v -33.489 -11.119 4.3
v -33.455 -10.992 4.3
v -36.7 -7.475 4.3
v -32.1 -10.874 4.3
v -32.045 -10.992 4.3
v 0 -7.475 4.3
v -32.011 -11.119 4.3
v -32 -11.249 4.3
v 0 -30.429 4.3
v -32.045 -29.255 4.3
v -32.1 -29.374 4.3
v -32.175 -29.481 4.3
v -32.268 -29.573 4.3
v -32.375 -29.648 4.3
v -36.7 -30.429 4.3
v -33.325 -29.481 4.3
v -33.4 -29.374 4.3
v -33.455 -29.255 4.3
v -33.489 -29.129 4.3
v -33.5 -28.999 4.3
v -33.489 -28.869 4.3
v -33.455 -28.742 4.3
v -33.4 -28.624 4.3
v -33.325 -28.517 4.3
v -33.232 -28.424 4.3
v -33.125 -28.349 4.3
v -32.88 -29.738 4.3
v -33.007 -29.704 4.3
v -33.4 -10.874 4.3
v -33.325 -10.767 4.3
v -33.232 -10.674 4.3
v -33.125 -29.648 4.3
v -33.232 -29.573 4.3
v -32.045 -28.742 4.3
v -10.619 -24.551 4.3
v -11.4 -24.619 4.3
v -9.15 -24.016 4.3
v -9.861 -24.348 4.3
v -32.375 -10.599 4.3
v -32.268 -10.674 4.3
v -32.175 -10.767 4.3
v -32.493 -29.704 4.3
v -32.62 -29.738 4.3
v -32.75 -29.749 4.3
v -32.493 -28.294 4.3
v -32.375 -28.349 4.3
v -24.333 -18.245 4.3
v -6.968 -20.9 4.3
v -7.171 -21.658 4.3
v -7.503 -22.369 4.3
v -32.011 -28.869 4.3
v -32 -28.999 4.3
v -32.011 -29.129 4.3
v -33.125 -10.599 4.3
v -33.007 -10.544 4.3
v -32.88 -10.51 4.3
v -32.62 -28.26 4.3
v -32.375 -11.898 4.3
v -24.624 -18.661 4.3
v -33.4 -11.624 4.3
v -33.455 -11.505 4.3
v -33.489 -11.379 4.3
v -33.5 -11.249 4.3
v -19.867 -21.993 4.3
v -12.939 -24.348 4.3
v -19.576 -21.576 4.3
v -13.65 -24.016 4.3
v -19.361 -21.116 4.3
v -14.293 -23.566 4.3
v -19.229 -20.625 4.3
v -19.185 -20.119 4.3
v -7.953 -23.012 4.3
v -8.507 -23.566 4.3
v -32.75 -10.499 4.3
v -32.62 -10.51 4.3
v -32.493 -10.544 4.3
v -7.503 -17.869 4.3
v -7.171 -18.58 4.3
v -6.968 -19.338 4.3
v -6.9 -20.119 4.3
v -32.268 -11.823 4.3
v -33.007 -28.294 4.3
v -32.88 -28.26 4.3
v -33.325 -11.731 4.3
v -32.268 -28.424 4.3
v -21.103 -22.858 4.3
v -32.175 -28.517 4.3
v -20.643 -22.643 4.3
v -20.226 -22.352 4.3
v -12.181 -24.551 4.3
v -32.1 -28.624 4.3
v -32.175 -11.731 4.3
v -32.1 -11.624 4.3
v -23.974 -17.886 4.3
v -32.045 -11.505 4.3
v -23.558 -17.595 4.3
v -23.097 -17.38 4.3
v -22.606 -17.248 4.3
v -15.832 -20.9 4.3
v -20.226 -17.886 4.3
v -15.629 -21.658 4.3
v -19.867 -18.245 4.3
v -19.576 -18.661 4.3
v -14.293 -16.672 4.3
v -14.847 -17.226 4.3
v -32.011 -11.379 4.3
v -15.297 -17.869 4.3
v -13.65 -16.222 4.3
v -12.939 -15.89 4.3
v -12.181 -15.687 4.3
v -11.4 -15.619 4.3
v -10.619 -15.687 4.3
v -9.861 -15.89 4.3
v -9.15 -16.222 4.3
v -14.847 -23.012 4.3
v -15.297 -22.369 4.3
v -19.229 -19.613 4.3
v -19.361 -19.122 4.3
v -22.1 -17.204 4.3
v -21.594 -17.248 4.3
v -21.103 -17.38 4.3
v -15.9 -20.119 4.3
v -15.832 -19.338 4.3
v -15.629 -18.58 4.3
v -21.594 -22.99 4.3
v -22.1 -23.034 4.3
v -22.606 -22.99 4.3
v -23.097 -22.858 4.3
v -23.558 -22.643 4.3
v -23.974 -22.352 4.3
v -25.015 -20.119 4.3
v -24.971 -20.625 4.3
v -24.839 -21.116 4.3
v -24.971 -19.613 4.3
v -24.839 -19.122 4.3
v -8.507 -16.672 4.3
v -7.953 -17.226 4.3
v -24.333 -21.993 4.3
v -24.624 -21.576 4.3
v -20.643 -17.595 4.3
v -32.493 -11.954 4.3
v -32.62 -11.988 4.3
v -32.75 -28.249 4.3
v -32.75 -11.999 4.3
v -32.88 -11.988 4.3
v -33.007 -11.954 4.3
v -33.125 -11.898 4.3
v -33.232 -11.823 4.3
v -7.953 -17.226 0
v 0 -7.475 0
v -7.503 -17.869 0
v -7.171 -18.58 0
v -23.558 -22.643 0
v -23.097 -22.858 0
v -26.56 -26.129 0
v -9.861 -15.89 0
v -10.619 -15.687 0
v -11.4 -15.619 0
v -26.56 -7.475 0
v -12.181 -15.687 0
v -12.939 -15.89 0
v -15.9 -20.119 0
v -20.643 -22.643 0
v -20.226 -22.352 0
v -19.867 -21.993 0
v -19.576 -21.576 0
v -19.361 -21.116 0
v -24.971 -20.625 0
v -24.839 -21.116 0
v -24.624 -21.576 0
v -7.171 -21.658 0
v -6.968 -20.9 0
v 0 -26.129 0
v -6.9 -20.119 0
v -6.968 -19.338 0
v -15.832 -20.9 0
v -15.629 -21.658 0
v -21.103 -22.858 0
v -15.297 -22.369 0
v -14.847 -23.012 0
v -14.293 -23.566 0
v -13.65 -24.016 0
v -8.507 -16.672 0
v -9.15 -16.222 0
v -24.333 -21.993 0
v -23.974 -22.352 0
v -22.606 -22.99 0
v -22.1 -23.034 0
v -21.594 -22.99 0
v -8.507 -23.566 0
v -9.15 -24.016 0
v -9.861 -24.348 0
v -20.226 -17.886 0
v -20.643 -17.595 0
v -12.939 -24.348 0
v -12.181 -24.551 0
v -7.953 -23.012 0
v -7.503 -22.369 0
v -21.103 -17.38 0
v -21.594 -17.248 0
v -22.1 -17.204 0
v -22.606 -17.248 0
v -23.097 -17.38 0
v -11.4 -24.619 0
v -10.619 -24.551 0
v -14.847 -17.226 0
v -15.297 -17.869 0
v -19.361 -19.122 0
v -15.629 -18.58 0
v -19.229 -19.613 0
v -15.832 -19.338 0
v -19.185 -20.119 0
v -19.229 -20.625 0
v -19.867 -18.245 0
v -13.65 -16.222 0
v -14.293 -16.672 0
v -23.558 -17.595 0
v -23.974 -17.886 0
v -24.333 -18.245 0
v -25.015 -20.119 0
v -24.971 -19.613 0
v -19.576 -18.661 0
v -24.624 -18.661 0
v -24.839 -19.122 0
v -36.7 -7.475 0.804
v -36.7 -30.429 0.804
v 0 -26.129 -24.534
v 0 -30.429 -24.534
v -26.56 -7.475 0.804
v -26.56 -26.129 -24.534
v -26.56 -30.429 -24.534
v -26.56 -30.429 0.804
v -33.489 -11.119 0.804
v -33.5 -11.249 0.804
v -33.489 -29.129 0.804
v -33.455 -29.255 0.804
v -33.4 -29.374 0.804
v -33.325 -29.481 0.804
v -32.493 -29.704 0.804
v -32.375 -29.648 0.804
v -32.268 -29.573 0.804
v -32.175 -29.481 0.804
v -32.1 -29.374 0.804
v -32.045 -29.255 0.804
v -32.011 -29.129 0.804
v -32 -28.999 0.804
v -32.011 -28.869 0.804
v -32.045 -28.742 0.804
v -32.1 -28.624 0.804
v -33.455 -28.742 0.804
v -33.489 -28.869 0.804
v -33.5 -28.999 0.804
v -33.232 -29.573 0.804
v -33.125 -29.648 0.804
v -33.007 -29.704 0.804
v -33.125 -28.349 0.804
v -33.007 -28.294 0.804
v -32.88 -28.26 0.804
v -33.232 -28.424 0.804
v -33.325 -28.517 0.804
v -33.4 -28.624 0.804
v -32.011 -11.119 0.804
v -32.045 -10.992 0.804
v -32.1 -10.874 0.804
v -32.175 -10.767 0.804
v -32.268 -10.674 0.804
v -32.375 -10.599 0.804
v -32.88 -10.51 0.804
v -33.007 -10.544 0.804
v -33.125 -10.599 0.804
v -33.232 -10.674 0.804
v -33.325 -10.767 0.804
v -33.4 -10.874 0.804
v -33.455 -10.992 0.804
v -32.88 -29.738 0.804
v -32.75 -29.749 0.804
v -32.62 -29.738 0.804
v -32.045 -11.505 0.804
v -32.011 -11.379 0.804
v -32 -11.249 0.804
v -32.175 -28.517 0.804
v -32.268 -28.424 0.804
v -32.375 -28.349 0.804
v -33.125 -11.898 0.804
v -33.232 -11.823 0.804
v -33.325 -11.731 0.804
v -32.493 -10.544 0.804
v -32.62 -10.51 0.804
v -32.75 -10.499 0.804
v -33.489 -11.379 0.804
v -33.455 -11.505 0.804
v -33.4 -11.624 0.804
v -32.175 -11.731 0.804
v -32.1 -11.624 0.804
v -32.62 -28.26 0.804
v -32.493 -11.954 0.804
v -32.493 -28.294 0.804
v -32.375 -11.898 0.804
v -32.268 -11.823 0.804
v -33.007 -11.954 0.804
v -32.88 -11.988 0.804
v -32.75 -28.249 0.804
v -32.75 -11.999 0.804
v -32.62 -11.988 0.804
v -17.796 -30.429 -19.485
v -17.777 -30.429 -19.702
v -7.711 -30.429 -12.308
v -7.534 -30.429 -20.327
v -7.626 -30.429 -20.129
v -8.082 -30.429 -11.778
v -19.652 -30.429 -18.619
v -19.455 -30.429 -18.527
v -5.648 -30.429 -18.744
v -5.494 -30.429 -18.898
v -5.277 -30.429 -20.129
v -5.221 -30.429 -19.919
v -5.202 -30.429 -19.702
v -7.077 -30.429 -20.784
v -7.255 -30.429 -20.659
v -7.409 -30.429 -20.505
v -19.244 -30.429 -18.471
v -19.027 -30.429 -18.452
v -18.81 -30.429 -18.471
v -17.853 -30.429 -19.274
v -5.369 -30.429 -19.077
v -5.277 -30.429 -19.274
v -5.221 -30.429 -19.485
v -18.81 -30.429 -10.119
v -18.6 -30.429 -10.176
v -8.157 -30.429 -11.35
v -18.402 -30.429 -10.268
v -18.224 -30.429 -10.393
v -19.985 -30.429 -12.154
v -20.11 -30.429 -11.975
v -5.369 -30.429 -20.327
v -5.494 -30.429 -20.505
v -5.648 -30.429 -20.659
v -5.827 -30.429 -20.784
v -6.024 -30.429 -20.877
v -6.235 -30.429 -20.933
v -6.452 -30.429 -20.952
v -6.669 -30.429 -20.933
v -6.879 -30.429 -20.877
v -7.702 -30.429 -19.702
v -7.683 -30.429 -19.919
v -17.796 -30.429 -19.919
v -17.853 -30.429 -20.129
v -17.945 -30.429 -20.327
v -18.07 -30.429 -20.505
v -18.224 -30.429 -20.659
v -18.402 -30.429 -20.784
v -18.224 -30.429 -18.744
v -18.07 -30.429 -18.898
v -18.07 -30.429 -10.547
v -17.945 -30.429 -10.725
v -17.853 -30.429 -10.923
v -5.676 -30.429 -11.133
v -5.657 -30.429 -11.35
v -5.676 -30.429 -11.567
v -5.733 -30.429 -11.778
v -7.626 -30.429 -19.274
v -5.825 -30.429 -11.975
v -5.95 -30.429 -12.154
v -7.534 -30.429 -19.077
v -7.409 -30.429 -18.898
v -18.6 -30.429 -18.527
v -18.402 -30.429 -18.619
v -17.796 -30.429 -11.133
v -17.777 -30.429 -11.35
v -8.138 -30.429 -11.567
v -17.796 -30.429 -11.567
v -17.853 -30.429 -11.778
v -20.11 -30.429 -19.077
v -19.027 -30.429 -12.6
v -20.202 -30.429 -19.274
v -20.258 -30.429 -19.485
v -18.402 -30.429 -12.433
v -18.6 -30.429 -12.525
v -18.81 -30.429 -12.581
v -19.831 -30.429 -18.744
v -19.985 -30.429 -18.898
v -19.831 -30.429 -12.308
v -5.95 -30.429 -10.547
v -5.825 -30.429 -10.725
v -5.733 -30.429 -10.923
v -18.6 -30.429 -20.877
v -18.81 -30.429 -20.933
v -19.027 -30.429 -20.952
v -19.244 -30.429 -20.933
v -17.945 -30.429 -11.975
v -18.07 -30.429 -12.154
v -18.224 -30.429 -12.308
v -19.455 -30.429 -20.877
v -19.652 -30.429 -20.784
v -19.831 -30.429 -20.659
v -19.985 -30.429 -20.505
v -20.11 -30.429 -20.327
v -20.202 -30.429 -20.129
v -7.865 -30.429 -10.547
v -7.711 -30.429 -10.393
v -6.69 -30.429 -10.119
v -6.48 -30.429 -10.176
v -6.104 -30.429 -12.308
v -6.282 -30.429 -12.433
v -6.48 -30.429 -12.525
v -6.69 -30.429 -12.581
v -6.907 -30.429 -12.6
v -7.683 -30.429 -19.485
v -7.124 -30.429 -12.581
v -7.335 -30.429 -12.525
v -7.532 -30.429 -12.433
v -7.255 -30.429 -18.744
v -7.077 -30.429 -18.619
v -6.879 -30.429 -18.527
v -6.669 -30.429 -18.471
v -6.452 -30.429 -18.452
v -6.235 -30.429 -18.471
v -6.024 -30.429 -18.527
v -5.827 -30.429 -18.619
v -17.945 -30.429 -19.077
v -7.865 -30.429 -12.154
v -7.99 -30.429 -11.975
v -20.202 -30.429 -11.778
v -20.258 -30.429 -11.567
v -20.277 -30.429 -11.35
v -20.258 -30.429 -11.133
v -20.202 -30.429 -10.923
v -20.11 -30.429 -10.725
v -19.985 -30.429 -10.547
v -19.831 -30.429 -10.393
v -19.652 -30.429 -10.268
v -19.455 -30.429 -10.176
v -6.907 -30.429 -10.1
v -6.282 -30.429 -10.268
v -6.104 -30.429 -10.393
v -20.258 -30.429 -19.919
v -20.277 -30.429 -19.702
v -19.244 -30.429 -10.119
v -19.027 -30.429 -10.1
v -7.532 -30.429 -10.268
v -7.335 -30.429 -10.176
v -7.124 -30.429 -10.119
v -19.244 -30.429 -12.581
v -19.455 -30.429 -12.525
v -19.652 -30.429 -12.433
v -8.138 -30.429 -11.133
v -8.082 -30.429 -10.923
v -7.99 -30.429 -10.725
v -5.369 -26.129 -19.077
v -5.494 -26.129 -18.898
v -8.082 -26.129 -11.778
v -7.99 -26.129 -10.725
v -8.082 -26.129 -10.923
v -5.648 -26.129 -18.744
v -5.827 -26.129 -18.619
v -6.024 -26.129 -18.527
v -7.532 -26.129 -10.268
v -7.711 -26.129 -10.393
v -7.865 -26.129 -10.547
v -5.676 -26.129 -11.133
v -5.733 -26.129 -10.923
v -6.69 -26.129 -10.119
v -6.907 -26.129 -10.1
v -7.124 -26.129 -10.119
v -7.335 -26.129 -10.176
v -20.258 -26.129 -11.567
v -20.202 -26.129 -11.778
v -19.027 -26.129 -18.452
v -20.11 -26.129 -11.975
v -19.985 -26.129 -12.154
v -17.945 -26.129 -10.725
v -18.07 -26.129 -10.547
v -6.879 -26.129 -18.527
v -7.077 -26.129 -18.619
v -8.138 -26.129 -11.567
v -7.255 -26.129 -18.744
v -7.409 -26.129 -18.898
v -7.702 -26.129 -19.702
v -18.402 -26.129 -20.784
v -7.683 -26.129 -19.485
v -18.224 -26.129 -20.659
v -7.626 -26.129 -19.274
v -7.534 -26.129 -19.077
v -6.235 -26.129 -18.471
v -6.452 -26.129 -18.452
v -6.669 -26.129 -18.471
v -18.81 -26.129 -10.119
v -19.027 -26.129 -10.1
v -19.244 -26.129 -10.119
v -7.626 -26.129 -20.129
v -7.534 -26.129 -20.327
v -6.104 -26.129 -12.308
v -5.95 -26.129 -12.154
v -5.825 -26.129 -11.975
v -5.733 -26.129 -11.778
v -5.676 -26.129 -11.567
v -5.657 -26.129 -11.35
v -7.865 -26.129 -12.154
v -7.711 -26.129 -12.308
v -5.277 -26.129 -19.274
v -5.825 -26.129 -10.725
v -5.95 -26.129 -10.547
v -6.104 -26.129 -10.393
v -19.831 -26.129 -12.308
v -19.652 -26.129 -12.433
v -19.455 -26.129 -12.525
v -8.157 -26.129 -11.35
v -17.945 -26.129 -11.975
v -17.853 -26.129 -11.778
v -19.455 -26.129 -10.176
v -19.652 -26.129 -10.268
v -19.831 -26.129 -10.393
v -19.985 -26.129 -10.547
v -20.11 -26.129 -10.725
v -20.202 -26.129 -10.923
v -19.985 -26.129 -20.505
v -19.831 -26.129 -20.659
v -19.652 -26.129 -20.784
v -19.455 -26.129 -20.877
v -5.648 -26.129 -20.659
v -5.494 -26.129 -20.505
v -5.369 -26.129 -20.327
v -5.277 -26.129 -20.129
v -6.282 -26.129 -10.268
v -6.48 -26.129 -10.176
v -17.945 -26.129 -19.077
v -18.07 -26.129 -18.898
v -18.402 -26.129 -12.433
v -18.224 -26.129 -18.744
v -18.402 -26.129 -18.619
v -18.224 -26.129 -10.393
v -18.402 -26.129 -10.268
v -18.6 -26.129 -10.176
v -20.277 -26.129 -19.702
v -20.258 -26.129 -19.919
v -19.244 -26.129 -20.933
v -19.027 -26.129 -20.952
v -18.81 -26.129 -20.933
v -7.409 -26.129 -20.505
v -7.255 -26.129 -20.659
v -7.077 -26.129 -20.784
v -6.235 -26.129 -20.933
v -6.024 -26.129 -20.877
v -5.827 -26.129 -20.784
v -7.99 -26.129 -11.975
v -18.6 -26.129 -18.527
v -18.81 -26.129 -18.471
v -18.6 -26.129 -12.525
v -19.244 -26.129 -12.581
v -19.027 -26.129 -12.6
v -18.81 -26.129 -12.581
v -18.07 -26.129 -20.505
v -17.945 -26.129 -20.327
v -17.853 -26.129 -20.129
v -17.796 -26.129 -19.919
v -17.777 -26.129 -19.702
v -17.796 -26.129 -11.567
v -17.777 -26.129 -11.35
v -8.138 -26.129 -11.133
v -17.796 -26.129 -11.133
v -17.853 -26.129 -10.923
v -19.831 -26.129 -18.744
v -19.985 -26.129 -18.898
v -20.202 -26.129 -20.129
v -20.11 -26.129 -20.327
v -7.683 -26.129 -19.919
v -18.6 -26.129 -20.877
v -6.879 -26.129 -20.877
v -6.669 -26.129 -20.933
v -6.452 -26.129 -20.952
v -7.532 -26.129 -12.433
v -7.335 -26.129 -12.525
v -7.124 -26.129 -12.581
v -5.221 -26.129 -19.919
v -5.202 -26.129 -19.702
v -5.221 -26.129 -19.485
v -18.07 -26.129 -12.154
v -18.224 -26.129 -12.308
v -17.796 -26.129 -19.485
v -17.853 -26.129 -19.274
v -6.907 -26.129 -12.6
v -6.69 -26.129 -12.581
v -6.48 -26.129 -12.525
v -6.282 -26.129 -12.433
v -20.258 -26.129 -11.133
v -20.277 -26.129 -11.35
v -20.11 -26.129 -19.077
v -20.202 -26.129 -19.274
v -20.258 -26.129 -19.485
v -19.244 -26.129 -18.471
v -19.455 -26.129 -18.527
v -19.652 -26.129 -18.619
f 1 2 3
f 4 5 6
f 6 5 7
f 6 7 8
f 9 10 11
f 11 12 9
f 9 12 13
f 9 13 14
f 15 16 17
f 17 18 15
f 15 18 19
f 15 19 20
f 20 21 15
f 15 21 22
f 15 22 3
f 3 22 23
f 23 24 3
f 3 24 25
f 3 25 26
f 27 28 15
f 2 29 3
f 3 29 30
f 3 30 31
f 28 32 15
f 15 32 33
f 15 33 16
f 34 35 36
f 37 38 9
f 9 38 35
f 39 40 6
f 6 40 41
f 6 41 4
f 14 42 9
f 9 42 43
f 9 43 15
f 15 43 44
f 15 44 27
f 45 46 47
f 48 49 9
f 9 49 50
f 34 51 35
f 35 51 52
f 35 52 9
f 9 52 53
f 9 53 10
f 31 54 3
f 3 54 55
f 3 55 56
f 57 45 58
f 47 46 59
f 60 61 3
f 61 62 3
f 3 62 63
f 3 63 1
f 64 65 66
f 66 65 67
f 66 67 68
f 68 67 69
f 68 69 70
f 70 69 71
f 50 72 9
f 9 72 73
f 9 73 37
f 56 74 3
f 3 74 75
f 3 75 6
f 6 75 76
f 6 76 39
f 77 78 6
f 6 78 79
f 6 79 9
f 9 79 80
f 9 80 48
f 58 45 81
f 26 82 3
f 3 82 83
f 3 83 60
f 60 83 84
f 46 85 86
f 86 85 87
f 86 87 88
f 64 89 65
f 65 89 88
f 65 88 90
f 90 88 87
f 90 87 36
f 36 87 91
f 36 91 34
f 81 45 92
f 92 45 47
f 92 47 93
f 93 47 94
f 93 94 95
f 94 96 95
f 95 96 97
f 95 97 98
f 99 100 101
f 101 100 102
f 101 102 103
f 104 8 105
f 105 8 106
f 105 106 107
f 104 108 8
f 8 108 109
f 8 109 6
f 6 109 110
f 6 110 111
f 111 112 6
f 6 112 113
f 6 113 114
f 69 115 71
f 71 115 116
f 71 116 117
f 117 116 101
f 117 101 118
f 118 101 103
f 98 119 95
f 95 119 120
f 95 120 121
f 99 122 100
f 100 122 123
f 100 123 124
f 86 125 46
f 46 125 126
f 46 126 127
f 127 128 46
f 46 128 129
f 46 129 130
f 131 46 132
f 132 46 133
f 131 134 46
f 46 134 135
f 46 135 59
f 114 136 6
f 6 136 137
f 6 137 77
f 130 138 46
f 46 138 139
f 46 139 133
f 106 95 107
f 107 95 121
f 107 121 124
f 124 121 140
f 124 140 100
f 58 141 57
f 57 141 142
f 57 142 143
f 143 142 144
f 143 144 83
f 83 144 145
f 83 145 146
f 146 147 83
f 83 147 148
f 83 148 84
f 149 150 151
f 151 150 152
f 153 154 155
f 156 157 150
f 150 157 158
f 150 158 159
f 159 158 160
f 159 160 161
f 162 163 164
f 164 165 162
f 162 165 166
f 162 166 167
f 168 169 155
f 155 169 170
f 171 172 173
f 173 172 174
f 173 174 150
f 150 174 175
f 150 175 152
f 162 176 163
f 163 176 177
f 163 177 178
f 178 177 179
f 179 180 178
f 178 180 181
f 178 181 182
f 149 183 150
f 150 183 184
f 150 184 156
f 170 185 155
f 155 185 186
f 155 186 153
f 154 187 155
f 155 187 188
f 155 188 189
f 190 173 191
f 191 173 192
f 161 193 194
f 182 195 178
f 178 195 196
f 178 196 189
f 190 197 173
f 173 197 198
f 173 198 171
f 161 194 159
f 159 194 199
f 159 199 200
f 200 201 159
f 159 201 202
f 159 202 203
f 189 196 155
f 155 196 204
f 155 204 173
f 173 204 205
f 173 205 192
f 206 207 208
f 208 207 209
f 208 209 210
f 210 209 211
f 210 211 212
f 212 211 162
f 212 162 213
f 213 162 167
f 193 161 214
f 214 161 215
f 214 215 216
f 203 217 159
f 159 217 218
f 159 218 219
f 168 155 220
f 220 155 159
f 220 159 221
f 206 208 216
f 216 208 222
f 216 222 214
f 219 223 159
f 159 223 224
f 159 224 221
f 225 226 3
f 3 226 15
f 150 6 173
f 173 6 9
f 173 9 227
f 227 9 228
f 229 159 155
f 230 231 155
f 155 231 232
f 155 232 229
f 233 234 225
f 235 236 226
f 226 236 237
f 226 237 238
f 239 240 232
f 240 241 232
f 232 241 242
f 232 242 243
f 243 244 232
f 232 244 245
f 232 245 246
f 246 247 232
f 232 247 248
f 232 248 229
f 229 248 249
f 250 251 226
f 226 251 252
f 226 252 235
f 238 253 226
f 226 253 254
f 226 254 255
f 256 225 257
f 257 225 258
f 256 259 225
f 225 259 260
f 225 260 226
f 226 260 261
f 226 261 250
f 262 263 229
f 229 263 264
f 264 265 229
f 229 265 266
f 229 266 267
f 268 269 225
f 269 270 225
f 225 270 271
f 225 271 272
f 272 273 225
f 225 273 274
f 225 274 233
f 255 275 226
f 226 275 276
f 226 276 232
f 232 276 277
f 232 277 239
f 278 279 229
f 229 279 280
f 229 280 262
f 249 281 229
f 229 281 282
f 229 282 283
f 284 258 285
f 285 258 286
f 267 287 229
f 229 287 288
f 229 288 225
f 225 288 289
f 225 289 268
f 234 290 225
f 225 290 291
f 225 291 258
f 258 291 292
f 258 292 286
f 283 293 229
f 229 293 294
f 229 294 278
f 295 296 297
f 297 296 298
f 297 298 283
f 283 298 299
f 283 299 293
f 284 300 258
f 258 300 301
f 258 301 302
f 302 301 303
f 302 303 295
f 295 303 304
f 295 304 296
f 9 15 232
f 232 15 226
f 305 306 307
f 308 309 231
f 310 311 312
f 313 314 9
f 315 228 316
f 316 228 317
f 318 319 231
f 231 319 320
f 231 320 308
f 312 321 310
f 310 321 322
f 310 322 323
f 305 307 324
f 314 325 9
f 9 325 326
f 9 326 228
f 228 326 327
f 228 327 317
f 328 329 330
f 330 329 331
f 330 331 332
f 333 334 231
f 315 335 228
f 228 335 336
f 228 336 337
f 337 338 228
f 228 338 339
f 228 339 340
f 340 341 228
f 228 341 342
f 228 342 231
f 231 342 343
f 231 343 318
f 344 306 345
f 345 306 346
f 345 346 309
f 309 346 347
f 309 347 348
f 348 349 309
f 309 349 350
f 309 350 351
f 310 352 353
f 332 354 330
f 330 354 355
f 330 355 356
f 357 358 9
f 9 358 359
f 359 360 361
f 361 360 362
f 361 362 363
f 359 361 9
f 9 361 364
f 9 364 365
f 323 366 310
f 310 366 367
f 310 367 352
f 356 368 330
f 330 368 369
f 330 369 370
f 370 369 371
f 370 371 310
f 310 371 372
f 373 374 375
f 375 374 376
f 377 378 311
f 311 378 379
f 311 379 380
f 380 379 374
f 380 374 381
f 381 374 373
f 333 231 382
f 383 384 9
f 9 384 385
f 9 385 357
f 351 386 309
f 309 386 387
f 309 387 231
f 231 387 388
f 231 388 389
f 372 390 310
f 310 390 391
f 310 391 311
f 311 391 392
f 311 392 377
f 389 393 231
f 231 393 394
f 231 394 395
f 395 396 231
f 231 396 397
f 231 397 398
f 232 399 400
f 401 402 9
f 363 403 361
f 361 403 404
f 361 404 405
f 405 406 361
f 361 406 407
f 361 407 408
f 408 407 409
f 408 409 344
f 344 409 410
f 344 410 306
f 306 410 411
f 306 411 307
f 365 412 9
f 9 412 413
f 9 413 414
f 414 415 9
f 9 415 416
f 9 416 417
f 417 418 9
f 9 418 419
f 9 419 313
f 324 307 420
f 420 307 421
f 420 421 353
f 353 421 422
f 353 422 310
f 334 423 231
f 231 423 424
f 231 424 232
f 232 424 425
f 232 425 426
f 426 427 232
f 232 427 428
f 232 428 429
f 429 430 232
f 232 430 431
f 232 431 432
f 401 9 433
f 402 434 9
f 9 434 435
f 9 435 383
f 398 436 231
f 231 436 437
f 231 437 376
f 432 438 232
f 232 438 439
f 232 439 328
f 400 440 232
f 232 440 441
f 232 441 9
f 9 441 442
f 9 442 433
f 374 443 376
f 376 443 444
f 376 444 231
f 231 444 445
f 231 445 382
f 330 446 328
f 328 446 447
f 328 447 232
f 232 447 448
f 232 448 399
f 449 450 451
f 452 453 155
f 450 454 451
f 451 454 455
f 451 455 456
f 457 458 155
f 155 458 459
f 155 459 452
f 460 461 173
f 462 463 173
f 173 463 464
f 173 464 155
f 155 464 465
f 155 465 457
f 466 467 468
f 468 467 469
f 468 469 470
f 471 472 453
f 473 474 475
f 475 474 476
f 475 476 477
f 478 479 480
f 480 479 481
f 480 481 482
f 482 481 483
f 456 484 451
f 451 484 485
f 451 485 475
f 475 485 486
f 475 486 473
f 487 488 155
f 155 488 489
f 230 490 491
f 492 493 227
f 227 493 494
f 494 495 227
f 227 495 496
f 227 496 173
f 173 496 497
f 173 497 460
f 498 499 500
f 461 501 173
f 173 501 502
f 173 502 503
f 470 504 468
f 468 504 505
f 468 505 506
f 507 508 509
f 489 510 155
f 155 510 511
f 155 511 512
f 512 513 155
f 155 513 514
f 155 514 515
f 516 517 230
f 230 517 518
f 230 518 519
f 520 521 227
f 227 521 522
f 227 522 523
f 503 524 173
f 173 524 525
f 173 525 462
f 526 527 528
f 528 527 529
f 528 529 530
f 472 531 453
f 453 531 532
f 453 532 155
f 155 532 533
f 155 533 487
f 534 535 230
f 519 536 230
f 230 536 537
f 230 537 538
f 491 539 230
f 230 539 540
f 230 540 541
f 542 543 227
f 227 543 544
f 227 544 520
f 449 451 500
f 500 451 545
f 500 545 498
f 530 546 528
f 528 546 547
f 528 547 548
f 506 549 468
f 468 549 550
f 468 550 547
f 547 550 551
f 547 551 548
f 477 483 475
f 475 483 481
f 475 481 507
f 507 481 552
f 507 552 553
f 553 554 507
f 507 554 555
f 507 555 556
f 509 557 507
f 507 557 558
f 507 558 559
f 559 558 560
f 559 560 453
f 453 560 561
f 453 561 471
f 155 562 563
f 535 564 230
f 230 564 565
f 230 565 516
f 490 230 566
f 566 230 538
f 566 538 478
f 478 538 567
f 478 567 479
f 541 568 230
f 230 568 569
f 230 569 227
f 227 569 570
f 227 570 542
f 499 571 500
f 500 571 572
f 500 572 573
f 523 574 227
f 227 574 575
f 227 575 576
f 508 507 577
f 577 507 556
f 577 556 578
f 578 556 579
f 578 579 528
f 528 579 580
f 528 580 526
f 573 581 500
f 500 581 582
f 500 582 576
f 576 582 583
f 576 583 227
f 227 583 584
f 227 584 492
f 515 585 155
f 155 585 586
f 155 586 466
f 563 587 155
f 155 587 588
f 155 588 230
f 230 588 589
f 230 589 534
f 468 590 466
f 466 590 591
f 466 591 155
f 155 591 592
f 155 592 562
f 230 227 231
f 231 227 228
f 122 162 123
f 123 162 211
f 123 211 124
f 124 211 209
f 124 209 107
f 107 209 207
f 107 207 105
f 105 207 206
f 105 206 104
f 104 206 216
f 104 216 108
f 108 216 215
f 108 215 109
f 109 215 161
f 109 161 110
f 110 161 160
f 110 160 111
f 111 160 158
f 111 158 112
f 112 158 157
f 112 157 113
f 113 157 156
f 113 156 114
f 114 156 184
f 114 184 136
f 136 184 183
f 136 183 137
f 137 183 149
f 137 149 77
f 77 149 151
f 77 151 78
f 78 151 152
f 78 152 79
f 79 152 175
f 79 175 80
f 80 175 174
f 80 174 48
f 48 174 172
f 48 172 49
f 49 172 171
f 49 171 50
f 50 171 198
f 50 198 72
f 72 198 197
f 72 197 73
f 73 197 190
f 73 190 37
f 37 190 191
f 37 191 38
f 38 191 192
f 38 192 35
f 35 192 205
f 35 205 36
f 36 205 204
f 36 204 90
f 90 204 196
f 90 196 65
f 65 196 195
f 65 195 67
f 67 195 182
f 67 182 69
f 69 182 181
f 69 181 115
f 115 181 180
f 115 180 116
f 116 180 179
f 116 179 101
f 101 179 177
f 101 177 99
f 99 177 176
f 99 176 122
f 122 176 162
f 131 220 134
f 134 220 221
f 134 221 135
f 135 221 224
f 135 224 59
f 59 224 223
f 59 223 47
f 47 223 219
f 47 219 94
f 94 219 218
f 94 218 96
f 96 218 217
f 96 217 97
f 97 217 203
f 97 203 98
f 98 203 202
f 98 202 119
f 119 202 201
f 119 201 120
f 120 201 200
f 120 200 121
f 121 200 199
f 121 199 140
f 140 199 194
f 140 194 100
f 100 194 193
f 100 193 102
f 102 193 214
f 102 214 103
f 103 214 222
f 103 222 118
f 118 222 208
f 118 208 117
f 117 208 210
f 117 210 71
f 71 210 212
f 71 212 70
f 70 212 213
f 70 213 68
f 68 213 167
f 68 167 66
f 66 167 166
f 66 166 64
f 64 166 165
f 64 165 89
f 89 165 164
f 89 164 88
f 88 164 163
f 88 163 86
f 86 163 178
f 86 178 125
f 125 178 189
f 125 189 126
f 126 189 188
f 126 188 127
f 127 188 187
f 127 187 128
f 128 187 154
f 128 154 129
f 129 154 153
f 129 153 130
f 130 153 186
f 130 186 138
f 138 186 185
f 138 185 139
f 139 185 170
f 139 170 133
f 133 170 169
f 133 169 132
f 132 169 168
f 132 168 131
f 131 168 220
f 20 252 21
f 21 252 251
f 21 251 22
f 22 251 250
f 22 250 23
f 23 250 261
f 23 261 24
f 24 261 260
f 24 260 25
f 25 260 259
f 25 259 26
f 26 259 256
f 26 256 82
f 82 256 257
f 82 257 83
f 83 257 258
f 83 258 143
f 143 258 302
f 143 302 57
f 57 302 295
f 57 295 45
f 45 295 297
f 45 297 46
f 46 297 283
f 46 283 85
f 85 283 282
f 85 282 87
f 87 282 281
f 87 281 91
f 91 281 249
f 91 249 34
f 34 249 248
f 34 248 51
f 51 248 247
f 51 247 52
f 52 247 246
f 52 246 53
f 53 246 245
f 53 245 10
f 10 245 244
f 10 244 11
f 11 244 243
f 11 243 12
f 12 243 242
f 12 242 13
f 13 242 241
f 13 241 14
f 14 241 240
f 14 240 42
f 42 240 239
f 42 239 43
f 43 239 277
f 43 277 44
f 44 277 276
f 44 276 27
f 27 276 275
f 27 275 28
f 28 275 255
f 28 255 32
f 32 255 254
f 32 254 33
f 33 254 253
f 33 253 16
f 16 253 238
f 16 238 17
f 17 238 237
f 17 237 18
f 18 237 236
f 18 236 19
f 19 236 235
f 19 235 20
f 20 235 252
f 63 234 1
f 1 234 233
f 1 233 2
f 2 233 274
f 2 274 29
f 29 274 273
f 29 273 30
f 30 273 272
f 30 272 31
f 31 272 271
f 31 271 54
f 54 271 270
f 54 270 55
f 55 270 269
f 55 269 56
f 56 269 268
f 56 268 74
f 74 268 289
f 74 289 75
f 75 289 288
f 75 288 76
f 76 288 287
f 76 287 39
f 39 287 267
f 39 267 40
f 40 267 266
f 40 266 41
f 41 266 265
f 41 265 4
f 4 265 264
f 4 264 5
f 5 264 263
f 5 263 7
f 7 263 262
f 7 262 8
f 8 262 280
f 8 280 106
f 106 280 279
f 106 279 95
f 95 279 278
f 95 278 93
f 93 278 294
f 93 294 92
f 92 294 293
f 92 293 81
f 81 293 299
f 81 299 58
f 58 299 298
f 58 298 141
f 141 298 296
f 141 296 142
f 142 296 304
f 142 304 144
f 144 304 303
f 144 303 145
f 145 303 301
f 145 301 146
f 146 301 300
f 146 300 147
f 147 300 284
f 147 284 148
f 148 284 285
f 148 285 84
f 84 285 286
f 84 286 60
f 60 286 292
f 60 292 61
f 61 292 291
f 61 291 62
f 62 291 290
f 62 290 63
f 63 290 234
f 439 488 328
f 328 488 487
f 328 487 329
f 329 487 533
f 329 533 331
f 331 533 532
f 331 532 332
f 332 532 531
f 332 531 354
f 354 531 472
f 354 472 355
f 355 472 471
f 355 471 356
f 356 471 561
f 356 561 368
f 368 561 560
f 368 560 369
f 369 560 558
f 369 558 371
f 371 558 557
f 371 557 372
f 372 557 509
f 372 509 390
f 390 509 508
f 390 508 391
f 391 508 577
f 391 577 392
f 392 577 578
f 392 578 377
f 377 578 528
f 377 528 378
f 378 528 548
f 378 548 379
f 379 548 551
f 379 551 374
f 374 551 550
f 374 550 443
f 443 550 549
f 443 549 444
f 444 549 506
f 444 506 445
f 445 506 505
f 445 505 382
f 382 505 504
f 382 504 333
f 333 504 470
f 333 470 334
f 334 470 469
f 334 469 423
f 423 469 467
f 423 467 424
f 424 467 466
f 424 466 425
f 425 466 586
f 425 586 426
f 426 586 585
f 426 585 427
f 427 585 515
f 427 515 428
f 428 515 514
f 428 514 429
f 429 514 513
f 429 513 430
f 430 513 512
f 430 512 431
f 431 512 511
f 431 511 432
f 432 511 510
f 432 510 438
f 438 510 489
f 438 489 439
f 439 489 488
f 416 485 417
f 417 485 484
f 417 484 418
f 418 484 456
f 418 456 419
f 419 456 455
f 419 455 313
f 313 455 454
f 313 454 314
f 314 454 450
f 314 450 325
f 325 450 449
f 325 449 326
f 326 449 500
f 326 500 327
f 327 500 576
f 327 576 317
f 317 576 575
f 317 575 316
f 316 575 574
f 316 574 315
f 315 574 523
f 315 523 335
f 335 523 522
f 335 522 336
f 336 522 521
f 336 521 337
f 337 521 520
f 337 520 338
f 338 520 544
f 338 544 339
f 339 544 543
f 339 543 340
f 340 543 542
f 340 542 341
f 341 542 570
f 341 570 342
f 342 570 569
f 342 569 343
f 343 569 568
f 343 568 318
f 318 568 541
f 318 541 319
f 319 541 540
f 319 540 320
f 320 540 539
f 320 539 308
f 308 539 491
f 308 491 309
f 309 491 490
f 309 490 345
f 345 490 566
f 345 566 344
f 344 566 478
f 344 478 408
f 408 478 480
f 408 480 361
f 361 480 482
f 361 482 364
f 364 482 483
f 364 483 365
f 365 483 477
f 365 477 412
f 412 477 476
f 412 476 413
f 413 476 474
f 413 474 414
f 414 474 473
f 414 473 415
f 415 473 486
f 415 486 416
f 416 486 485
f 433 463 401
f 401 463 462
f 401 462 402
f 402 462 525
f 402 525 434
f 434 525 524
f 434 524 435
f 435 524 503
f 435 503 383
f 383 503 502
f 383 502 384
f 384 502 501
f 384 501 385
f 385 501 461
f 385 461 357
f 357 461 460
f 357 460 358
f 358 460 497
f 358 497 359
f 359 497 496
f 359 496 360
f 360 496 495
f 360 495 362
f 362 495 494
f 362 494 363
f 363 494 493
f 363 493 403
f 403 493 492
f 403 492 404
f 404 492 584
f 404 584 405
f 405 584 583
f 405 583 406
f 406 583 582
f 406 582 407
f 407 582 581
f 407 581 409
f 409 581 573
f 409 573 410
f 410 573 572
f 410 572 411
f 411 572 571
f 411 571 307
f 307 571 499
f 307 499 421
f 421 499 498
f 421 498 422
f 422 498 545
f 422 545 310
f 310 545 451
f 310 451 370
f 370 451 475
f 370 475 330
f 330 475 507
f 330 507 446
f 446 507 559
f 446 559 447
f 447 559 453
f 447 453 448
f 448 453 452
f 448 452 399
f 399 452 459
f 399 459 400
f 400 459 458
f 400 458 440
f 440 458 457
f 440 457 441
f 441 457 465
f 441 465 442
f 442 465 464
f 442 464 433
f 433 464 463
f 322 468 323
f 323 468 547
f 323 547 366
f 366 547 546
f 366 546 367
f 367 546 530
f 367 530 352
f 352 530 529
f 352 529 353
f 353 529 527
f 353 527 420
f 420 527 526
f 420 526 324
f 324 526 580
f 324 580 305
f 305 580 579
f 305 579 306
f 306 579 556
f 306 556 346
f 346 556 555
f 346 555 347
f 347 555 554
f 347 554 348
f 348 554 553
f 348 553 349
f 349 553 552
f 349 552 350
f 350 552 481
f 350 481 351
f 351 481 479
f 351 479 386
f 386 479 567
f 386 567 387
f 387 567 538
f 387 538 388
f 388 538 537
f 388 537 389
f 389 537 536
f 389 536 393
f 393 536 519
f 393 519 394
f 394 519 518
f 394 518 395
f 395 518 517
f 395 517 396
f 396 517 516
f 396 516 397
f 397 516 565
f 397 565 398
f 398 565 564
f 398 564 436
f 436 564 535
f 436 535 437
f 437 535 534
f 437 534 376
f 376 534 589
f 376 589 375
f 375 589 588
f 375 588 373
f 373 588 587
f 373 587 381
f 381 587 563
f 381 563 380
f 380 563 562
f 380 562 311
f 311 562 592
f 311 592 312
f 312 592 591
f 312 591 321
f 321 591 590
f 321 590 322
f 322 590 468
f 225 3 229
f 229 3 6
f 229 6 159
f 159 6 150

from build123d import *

# Parameters (mm, degrees)
EXTRUDE_THIN1_DEPTH = 36.7
SKETCH4_W           = 21.133468013
SKETCH4_H           = 40.04871341
CUT_EXTRUDE2_DEPTH  = 54.616609778
SKETCH5_R           = 4.5
CUT_EXTRUDE3_DEPTH  = 54.616609778
SKETCH6_R           = 2.915
CUT_EXTRUDE4_DEPTH  = 54.616609778
SKETCH7_R           = 0.75
CUT_EXTRUDE5_DEPTH  = 54.616609778
SKETCH8_R           = 1.25
CUT_EXTRUDE6_DEPTH  = 54.616609778
SKETCH9_W           = 36.7
SKETCH9_H           = 7.475480679
CUT_EXTRUDE7_DEPTH  = 54.616609778


with BuildPart() as part:
    # Sketch3 → Extrude-Thin1 (new body)
    with BuildSketch(Plane(origin=(0, 0, 0), x_dir=(0, 0, -1), z_dir=(1, 0, 0))):
        Polygon((0, 0), (0, -26.128965265), (24.534239686, -26.128965265), (24.534239686, -30.428965265), (-4.3, -30.428965265), (-4.3, 0), align=None)
    extrude(amount=-EXTRUDE_THIN1_DEPTH)

    # Sketch4 → Cut-Extrude2 (cut, through all)
    with BuildSketch(Plane(origin=(0, 0, 0), x_dir=(1, 0, 0), z_dir=(0, 1, 0))):
        with Locations((-37.126734007, 19.219871441)):
            Rectangle(SKETCH4_W, SKETCH4_H)
    extrude(amount=-CUT_EXTRUDE2_DEPTH, mode=Mode.SUBTRACT)

    # Sketch5 → Cut-Extrude3 (cut, through all)
    with BuildSketch(Plane.XY):
        with Locations((-11.4, -20.118965265)):
            Circle(SKETCH5_R)
    extrude(amount=CUT_EXTRUDE3_DEPTH, mode=Mode.SUBTRACT)

    # Sketch6 → Cut-Extrude4 (cut, through all)
    with BuildSketch(Plane.XY):
        with Locations((-22.1, -20.118965265)):
            Circle(SKETCH6_R)
    extrude(amount=CUT_EXTRUDE4_DEPTH, mode=Mode.SUBTRACT)

    # Sketch7 → Cut-Extrude5 (cut, through all)
    with BuildSketch(Plane.XY):
        with Locations((-32.75, -11.248965265)):
            Circle(SKETCH7_R)
        with Locations((-32.75, -28.998965265)):
            Circle(SKETCH7_R)
    extrude(amount=CUT_EXTRUDE5_DEPTH, mode=Mode.SUBTRACT)

    # Sketch8 → Cut-Extrude6 (cut, through all)
    with BuildSketch(Plane(origin=(0, 0, 0), x_dir=(1, 0, 0), z_dir=(0, 1, 0))):
        with Locations(Location((-19.027267825, 11.350303501, 0), (0, 0, 270))):
            Circle(SKETCH8_R)
        with Locations(Location((-19.027267825, 19.701887491, 0), (0, 0, 270))):
            Circle(SKETCH8_R)
        with Locations(Location((-6.907228252, 11.350303501, 0), (0, 0, 270))):
            Circle(SKETCH8_R)
        with Locations(Location((-6.45179676, 19.701887491, 0), (0, 0, 270))):
            Circle(SKETCH8_R)
    extrude(amount=-CUT_EXTRUDE6_DEPTH, mode=Mode.SUBTRACT)

    # Sketch9 → Cut-Extrude7 (cut, through all)
    with BuildSketch(Plane.XY):
        with Locations((-18.35, -3.73774034)):
            Rectangle(SKETCH9_W, SKETCH9_H)
    extrude(amount=CUT_EXTRUDE7_DEPTH, mode=Mode.SUBTRACT)


solid = part.part
